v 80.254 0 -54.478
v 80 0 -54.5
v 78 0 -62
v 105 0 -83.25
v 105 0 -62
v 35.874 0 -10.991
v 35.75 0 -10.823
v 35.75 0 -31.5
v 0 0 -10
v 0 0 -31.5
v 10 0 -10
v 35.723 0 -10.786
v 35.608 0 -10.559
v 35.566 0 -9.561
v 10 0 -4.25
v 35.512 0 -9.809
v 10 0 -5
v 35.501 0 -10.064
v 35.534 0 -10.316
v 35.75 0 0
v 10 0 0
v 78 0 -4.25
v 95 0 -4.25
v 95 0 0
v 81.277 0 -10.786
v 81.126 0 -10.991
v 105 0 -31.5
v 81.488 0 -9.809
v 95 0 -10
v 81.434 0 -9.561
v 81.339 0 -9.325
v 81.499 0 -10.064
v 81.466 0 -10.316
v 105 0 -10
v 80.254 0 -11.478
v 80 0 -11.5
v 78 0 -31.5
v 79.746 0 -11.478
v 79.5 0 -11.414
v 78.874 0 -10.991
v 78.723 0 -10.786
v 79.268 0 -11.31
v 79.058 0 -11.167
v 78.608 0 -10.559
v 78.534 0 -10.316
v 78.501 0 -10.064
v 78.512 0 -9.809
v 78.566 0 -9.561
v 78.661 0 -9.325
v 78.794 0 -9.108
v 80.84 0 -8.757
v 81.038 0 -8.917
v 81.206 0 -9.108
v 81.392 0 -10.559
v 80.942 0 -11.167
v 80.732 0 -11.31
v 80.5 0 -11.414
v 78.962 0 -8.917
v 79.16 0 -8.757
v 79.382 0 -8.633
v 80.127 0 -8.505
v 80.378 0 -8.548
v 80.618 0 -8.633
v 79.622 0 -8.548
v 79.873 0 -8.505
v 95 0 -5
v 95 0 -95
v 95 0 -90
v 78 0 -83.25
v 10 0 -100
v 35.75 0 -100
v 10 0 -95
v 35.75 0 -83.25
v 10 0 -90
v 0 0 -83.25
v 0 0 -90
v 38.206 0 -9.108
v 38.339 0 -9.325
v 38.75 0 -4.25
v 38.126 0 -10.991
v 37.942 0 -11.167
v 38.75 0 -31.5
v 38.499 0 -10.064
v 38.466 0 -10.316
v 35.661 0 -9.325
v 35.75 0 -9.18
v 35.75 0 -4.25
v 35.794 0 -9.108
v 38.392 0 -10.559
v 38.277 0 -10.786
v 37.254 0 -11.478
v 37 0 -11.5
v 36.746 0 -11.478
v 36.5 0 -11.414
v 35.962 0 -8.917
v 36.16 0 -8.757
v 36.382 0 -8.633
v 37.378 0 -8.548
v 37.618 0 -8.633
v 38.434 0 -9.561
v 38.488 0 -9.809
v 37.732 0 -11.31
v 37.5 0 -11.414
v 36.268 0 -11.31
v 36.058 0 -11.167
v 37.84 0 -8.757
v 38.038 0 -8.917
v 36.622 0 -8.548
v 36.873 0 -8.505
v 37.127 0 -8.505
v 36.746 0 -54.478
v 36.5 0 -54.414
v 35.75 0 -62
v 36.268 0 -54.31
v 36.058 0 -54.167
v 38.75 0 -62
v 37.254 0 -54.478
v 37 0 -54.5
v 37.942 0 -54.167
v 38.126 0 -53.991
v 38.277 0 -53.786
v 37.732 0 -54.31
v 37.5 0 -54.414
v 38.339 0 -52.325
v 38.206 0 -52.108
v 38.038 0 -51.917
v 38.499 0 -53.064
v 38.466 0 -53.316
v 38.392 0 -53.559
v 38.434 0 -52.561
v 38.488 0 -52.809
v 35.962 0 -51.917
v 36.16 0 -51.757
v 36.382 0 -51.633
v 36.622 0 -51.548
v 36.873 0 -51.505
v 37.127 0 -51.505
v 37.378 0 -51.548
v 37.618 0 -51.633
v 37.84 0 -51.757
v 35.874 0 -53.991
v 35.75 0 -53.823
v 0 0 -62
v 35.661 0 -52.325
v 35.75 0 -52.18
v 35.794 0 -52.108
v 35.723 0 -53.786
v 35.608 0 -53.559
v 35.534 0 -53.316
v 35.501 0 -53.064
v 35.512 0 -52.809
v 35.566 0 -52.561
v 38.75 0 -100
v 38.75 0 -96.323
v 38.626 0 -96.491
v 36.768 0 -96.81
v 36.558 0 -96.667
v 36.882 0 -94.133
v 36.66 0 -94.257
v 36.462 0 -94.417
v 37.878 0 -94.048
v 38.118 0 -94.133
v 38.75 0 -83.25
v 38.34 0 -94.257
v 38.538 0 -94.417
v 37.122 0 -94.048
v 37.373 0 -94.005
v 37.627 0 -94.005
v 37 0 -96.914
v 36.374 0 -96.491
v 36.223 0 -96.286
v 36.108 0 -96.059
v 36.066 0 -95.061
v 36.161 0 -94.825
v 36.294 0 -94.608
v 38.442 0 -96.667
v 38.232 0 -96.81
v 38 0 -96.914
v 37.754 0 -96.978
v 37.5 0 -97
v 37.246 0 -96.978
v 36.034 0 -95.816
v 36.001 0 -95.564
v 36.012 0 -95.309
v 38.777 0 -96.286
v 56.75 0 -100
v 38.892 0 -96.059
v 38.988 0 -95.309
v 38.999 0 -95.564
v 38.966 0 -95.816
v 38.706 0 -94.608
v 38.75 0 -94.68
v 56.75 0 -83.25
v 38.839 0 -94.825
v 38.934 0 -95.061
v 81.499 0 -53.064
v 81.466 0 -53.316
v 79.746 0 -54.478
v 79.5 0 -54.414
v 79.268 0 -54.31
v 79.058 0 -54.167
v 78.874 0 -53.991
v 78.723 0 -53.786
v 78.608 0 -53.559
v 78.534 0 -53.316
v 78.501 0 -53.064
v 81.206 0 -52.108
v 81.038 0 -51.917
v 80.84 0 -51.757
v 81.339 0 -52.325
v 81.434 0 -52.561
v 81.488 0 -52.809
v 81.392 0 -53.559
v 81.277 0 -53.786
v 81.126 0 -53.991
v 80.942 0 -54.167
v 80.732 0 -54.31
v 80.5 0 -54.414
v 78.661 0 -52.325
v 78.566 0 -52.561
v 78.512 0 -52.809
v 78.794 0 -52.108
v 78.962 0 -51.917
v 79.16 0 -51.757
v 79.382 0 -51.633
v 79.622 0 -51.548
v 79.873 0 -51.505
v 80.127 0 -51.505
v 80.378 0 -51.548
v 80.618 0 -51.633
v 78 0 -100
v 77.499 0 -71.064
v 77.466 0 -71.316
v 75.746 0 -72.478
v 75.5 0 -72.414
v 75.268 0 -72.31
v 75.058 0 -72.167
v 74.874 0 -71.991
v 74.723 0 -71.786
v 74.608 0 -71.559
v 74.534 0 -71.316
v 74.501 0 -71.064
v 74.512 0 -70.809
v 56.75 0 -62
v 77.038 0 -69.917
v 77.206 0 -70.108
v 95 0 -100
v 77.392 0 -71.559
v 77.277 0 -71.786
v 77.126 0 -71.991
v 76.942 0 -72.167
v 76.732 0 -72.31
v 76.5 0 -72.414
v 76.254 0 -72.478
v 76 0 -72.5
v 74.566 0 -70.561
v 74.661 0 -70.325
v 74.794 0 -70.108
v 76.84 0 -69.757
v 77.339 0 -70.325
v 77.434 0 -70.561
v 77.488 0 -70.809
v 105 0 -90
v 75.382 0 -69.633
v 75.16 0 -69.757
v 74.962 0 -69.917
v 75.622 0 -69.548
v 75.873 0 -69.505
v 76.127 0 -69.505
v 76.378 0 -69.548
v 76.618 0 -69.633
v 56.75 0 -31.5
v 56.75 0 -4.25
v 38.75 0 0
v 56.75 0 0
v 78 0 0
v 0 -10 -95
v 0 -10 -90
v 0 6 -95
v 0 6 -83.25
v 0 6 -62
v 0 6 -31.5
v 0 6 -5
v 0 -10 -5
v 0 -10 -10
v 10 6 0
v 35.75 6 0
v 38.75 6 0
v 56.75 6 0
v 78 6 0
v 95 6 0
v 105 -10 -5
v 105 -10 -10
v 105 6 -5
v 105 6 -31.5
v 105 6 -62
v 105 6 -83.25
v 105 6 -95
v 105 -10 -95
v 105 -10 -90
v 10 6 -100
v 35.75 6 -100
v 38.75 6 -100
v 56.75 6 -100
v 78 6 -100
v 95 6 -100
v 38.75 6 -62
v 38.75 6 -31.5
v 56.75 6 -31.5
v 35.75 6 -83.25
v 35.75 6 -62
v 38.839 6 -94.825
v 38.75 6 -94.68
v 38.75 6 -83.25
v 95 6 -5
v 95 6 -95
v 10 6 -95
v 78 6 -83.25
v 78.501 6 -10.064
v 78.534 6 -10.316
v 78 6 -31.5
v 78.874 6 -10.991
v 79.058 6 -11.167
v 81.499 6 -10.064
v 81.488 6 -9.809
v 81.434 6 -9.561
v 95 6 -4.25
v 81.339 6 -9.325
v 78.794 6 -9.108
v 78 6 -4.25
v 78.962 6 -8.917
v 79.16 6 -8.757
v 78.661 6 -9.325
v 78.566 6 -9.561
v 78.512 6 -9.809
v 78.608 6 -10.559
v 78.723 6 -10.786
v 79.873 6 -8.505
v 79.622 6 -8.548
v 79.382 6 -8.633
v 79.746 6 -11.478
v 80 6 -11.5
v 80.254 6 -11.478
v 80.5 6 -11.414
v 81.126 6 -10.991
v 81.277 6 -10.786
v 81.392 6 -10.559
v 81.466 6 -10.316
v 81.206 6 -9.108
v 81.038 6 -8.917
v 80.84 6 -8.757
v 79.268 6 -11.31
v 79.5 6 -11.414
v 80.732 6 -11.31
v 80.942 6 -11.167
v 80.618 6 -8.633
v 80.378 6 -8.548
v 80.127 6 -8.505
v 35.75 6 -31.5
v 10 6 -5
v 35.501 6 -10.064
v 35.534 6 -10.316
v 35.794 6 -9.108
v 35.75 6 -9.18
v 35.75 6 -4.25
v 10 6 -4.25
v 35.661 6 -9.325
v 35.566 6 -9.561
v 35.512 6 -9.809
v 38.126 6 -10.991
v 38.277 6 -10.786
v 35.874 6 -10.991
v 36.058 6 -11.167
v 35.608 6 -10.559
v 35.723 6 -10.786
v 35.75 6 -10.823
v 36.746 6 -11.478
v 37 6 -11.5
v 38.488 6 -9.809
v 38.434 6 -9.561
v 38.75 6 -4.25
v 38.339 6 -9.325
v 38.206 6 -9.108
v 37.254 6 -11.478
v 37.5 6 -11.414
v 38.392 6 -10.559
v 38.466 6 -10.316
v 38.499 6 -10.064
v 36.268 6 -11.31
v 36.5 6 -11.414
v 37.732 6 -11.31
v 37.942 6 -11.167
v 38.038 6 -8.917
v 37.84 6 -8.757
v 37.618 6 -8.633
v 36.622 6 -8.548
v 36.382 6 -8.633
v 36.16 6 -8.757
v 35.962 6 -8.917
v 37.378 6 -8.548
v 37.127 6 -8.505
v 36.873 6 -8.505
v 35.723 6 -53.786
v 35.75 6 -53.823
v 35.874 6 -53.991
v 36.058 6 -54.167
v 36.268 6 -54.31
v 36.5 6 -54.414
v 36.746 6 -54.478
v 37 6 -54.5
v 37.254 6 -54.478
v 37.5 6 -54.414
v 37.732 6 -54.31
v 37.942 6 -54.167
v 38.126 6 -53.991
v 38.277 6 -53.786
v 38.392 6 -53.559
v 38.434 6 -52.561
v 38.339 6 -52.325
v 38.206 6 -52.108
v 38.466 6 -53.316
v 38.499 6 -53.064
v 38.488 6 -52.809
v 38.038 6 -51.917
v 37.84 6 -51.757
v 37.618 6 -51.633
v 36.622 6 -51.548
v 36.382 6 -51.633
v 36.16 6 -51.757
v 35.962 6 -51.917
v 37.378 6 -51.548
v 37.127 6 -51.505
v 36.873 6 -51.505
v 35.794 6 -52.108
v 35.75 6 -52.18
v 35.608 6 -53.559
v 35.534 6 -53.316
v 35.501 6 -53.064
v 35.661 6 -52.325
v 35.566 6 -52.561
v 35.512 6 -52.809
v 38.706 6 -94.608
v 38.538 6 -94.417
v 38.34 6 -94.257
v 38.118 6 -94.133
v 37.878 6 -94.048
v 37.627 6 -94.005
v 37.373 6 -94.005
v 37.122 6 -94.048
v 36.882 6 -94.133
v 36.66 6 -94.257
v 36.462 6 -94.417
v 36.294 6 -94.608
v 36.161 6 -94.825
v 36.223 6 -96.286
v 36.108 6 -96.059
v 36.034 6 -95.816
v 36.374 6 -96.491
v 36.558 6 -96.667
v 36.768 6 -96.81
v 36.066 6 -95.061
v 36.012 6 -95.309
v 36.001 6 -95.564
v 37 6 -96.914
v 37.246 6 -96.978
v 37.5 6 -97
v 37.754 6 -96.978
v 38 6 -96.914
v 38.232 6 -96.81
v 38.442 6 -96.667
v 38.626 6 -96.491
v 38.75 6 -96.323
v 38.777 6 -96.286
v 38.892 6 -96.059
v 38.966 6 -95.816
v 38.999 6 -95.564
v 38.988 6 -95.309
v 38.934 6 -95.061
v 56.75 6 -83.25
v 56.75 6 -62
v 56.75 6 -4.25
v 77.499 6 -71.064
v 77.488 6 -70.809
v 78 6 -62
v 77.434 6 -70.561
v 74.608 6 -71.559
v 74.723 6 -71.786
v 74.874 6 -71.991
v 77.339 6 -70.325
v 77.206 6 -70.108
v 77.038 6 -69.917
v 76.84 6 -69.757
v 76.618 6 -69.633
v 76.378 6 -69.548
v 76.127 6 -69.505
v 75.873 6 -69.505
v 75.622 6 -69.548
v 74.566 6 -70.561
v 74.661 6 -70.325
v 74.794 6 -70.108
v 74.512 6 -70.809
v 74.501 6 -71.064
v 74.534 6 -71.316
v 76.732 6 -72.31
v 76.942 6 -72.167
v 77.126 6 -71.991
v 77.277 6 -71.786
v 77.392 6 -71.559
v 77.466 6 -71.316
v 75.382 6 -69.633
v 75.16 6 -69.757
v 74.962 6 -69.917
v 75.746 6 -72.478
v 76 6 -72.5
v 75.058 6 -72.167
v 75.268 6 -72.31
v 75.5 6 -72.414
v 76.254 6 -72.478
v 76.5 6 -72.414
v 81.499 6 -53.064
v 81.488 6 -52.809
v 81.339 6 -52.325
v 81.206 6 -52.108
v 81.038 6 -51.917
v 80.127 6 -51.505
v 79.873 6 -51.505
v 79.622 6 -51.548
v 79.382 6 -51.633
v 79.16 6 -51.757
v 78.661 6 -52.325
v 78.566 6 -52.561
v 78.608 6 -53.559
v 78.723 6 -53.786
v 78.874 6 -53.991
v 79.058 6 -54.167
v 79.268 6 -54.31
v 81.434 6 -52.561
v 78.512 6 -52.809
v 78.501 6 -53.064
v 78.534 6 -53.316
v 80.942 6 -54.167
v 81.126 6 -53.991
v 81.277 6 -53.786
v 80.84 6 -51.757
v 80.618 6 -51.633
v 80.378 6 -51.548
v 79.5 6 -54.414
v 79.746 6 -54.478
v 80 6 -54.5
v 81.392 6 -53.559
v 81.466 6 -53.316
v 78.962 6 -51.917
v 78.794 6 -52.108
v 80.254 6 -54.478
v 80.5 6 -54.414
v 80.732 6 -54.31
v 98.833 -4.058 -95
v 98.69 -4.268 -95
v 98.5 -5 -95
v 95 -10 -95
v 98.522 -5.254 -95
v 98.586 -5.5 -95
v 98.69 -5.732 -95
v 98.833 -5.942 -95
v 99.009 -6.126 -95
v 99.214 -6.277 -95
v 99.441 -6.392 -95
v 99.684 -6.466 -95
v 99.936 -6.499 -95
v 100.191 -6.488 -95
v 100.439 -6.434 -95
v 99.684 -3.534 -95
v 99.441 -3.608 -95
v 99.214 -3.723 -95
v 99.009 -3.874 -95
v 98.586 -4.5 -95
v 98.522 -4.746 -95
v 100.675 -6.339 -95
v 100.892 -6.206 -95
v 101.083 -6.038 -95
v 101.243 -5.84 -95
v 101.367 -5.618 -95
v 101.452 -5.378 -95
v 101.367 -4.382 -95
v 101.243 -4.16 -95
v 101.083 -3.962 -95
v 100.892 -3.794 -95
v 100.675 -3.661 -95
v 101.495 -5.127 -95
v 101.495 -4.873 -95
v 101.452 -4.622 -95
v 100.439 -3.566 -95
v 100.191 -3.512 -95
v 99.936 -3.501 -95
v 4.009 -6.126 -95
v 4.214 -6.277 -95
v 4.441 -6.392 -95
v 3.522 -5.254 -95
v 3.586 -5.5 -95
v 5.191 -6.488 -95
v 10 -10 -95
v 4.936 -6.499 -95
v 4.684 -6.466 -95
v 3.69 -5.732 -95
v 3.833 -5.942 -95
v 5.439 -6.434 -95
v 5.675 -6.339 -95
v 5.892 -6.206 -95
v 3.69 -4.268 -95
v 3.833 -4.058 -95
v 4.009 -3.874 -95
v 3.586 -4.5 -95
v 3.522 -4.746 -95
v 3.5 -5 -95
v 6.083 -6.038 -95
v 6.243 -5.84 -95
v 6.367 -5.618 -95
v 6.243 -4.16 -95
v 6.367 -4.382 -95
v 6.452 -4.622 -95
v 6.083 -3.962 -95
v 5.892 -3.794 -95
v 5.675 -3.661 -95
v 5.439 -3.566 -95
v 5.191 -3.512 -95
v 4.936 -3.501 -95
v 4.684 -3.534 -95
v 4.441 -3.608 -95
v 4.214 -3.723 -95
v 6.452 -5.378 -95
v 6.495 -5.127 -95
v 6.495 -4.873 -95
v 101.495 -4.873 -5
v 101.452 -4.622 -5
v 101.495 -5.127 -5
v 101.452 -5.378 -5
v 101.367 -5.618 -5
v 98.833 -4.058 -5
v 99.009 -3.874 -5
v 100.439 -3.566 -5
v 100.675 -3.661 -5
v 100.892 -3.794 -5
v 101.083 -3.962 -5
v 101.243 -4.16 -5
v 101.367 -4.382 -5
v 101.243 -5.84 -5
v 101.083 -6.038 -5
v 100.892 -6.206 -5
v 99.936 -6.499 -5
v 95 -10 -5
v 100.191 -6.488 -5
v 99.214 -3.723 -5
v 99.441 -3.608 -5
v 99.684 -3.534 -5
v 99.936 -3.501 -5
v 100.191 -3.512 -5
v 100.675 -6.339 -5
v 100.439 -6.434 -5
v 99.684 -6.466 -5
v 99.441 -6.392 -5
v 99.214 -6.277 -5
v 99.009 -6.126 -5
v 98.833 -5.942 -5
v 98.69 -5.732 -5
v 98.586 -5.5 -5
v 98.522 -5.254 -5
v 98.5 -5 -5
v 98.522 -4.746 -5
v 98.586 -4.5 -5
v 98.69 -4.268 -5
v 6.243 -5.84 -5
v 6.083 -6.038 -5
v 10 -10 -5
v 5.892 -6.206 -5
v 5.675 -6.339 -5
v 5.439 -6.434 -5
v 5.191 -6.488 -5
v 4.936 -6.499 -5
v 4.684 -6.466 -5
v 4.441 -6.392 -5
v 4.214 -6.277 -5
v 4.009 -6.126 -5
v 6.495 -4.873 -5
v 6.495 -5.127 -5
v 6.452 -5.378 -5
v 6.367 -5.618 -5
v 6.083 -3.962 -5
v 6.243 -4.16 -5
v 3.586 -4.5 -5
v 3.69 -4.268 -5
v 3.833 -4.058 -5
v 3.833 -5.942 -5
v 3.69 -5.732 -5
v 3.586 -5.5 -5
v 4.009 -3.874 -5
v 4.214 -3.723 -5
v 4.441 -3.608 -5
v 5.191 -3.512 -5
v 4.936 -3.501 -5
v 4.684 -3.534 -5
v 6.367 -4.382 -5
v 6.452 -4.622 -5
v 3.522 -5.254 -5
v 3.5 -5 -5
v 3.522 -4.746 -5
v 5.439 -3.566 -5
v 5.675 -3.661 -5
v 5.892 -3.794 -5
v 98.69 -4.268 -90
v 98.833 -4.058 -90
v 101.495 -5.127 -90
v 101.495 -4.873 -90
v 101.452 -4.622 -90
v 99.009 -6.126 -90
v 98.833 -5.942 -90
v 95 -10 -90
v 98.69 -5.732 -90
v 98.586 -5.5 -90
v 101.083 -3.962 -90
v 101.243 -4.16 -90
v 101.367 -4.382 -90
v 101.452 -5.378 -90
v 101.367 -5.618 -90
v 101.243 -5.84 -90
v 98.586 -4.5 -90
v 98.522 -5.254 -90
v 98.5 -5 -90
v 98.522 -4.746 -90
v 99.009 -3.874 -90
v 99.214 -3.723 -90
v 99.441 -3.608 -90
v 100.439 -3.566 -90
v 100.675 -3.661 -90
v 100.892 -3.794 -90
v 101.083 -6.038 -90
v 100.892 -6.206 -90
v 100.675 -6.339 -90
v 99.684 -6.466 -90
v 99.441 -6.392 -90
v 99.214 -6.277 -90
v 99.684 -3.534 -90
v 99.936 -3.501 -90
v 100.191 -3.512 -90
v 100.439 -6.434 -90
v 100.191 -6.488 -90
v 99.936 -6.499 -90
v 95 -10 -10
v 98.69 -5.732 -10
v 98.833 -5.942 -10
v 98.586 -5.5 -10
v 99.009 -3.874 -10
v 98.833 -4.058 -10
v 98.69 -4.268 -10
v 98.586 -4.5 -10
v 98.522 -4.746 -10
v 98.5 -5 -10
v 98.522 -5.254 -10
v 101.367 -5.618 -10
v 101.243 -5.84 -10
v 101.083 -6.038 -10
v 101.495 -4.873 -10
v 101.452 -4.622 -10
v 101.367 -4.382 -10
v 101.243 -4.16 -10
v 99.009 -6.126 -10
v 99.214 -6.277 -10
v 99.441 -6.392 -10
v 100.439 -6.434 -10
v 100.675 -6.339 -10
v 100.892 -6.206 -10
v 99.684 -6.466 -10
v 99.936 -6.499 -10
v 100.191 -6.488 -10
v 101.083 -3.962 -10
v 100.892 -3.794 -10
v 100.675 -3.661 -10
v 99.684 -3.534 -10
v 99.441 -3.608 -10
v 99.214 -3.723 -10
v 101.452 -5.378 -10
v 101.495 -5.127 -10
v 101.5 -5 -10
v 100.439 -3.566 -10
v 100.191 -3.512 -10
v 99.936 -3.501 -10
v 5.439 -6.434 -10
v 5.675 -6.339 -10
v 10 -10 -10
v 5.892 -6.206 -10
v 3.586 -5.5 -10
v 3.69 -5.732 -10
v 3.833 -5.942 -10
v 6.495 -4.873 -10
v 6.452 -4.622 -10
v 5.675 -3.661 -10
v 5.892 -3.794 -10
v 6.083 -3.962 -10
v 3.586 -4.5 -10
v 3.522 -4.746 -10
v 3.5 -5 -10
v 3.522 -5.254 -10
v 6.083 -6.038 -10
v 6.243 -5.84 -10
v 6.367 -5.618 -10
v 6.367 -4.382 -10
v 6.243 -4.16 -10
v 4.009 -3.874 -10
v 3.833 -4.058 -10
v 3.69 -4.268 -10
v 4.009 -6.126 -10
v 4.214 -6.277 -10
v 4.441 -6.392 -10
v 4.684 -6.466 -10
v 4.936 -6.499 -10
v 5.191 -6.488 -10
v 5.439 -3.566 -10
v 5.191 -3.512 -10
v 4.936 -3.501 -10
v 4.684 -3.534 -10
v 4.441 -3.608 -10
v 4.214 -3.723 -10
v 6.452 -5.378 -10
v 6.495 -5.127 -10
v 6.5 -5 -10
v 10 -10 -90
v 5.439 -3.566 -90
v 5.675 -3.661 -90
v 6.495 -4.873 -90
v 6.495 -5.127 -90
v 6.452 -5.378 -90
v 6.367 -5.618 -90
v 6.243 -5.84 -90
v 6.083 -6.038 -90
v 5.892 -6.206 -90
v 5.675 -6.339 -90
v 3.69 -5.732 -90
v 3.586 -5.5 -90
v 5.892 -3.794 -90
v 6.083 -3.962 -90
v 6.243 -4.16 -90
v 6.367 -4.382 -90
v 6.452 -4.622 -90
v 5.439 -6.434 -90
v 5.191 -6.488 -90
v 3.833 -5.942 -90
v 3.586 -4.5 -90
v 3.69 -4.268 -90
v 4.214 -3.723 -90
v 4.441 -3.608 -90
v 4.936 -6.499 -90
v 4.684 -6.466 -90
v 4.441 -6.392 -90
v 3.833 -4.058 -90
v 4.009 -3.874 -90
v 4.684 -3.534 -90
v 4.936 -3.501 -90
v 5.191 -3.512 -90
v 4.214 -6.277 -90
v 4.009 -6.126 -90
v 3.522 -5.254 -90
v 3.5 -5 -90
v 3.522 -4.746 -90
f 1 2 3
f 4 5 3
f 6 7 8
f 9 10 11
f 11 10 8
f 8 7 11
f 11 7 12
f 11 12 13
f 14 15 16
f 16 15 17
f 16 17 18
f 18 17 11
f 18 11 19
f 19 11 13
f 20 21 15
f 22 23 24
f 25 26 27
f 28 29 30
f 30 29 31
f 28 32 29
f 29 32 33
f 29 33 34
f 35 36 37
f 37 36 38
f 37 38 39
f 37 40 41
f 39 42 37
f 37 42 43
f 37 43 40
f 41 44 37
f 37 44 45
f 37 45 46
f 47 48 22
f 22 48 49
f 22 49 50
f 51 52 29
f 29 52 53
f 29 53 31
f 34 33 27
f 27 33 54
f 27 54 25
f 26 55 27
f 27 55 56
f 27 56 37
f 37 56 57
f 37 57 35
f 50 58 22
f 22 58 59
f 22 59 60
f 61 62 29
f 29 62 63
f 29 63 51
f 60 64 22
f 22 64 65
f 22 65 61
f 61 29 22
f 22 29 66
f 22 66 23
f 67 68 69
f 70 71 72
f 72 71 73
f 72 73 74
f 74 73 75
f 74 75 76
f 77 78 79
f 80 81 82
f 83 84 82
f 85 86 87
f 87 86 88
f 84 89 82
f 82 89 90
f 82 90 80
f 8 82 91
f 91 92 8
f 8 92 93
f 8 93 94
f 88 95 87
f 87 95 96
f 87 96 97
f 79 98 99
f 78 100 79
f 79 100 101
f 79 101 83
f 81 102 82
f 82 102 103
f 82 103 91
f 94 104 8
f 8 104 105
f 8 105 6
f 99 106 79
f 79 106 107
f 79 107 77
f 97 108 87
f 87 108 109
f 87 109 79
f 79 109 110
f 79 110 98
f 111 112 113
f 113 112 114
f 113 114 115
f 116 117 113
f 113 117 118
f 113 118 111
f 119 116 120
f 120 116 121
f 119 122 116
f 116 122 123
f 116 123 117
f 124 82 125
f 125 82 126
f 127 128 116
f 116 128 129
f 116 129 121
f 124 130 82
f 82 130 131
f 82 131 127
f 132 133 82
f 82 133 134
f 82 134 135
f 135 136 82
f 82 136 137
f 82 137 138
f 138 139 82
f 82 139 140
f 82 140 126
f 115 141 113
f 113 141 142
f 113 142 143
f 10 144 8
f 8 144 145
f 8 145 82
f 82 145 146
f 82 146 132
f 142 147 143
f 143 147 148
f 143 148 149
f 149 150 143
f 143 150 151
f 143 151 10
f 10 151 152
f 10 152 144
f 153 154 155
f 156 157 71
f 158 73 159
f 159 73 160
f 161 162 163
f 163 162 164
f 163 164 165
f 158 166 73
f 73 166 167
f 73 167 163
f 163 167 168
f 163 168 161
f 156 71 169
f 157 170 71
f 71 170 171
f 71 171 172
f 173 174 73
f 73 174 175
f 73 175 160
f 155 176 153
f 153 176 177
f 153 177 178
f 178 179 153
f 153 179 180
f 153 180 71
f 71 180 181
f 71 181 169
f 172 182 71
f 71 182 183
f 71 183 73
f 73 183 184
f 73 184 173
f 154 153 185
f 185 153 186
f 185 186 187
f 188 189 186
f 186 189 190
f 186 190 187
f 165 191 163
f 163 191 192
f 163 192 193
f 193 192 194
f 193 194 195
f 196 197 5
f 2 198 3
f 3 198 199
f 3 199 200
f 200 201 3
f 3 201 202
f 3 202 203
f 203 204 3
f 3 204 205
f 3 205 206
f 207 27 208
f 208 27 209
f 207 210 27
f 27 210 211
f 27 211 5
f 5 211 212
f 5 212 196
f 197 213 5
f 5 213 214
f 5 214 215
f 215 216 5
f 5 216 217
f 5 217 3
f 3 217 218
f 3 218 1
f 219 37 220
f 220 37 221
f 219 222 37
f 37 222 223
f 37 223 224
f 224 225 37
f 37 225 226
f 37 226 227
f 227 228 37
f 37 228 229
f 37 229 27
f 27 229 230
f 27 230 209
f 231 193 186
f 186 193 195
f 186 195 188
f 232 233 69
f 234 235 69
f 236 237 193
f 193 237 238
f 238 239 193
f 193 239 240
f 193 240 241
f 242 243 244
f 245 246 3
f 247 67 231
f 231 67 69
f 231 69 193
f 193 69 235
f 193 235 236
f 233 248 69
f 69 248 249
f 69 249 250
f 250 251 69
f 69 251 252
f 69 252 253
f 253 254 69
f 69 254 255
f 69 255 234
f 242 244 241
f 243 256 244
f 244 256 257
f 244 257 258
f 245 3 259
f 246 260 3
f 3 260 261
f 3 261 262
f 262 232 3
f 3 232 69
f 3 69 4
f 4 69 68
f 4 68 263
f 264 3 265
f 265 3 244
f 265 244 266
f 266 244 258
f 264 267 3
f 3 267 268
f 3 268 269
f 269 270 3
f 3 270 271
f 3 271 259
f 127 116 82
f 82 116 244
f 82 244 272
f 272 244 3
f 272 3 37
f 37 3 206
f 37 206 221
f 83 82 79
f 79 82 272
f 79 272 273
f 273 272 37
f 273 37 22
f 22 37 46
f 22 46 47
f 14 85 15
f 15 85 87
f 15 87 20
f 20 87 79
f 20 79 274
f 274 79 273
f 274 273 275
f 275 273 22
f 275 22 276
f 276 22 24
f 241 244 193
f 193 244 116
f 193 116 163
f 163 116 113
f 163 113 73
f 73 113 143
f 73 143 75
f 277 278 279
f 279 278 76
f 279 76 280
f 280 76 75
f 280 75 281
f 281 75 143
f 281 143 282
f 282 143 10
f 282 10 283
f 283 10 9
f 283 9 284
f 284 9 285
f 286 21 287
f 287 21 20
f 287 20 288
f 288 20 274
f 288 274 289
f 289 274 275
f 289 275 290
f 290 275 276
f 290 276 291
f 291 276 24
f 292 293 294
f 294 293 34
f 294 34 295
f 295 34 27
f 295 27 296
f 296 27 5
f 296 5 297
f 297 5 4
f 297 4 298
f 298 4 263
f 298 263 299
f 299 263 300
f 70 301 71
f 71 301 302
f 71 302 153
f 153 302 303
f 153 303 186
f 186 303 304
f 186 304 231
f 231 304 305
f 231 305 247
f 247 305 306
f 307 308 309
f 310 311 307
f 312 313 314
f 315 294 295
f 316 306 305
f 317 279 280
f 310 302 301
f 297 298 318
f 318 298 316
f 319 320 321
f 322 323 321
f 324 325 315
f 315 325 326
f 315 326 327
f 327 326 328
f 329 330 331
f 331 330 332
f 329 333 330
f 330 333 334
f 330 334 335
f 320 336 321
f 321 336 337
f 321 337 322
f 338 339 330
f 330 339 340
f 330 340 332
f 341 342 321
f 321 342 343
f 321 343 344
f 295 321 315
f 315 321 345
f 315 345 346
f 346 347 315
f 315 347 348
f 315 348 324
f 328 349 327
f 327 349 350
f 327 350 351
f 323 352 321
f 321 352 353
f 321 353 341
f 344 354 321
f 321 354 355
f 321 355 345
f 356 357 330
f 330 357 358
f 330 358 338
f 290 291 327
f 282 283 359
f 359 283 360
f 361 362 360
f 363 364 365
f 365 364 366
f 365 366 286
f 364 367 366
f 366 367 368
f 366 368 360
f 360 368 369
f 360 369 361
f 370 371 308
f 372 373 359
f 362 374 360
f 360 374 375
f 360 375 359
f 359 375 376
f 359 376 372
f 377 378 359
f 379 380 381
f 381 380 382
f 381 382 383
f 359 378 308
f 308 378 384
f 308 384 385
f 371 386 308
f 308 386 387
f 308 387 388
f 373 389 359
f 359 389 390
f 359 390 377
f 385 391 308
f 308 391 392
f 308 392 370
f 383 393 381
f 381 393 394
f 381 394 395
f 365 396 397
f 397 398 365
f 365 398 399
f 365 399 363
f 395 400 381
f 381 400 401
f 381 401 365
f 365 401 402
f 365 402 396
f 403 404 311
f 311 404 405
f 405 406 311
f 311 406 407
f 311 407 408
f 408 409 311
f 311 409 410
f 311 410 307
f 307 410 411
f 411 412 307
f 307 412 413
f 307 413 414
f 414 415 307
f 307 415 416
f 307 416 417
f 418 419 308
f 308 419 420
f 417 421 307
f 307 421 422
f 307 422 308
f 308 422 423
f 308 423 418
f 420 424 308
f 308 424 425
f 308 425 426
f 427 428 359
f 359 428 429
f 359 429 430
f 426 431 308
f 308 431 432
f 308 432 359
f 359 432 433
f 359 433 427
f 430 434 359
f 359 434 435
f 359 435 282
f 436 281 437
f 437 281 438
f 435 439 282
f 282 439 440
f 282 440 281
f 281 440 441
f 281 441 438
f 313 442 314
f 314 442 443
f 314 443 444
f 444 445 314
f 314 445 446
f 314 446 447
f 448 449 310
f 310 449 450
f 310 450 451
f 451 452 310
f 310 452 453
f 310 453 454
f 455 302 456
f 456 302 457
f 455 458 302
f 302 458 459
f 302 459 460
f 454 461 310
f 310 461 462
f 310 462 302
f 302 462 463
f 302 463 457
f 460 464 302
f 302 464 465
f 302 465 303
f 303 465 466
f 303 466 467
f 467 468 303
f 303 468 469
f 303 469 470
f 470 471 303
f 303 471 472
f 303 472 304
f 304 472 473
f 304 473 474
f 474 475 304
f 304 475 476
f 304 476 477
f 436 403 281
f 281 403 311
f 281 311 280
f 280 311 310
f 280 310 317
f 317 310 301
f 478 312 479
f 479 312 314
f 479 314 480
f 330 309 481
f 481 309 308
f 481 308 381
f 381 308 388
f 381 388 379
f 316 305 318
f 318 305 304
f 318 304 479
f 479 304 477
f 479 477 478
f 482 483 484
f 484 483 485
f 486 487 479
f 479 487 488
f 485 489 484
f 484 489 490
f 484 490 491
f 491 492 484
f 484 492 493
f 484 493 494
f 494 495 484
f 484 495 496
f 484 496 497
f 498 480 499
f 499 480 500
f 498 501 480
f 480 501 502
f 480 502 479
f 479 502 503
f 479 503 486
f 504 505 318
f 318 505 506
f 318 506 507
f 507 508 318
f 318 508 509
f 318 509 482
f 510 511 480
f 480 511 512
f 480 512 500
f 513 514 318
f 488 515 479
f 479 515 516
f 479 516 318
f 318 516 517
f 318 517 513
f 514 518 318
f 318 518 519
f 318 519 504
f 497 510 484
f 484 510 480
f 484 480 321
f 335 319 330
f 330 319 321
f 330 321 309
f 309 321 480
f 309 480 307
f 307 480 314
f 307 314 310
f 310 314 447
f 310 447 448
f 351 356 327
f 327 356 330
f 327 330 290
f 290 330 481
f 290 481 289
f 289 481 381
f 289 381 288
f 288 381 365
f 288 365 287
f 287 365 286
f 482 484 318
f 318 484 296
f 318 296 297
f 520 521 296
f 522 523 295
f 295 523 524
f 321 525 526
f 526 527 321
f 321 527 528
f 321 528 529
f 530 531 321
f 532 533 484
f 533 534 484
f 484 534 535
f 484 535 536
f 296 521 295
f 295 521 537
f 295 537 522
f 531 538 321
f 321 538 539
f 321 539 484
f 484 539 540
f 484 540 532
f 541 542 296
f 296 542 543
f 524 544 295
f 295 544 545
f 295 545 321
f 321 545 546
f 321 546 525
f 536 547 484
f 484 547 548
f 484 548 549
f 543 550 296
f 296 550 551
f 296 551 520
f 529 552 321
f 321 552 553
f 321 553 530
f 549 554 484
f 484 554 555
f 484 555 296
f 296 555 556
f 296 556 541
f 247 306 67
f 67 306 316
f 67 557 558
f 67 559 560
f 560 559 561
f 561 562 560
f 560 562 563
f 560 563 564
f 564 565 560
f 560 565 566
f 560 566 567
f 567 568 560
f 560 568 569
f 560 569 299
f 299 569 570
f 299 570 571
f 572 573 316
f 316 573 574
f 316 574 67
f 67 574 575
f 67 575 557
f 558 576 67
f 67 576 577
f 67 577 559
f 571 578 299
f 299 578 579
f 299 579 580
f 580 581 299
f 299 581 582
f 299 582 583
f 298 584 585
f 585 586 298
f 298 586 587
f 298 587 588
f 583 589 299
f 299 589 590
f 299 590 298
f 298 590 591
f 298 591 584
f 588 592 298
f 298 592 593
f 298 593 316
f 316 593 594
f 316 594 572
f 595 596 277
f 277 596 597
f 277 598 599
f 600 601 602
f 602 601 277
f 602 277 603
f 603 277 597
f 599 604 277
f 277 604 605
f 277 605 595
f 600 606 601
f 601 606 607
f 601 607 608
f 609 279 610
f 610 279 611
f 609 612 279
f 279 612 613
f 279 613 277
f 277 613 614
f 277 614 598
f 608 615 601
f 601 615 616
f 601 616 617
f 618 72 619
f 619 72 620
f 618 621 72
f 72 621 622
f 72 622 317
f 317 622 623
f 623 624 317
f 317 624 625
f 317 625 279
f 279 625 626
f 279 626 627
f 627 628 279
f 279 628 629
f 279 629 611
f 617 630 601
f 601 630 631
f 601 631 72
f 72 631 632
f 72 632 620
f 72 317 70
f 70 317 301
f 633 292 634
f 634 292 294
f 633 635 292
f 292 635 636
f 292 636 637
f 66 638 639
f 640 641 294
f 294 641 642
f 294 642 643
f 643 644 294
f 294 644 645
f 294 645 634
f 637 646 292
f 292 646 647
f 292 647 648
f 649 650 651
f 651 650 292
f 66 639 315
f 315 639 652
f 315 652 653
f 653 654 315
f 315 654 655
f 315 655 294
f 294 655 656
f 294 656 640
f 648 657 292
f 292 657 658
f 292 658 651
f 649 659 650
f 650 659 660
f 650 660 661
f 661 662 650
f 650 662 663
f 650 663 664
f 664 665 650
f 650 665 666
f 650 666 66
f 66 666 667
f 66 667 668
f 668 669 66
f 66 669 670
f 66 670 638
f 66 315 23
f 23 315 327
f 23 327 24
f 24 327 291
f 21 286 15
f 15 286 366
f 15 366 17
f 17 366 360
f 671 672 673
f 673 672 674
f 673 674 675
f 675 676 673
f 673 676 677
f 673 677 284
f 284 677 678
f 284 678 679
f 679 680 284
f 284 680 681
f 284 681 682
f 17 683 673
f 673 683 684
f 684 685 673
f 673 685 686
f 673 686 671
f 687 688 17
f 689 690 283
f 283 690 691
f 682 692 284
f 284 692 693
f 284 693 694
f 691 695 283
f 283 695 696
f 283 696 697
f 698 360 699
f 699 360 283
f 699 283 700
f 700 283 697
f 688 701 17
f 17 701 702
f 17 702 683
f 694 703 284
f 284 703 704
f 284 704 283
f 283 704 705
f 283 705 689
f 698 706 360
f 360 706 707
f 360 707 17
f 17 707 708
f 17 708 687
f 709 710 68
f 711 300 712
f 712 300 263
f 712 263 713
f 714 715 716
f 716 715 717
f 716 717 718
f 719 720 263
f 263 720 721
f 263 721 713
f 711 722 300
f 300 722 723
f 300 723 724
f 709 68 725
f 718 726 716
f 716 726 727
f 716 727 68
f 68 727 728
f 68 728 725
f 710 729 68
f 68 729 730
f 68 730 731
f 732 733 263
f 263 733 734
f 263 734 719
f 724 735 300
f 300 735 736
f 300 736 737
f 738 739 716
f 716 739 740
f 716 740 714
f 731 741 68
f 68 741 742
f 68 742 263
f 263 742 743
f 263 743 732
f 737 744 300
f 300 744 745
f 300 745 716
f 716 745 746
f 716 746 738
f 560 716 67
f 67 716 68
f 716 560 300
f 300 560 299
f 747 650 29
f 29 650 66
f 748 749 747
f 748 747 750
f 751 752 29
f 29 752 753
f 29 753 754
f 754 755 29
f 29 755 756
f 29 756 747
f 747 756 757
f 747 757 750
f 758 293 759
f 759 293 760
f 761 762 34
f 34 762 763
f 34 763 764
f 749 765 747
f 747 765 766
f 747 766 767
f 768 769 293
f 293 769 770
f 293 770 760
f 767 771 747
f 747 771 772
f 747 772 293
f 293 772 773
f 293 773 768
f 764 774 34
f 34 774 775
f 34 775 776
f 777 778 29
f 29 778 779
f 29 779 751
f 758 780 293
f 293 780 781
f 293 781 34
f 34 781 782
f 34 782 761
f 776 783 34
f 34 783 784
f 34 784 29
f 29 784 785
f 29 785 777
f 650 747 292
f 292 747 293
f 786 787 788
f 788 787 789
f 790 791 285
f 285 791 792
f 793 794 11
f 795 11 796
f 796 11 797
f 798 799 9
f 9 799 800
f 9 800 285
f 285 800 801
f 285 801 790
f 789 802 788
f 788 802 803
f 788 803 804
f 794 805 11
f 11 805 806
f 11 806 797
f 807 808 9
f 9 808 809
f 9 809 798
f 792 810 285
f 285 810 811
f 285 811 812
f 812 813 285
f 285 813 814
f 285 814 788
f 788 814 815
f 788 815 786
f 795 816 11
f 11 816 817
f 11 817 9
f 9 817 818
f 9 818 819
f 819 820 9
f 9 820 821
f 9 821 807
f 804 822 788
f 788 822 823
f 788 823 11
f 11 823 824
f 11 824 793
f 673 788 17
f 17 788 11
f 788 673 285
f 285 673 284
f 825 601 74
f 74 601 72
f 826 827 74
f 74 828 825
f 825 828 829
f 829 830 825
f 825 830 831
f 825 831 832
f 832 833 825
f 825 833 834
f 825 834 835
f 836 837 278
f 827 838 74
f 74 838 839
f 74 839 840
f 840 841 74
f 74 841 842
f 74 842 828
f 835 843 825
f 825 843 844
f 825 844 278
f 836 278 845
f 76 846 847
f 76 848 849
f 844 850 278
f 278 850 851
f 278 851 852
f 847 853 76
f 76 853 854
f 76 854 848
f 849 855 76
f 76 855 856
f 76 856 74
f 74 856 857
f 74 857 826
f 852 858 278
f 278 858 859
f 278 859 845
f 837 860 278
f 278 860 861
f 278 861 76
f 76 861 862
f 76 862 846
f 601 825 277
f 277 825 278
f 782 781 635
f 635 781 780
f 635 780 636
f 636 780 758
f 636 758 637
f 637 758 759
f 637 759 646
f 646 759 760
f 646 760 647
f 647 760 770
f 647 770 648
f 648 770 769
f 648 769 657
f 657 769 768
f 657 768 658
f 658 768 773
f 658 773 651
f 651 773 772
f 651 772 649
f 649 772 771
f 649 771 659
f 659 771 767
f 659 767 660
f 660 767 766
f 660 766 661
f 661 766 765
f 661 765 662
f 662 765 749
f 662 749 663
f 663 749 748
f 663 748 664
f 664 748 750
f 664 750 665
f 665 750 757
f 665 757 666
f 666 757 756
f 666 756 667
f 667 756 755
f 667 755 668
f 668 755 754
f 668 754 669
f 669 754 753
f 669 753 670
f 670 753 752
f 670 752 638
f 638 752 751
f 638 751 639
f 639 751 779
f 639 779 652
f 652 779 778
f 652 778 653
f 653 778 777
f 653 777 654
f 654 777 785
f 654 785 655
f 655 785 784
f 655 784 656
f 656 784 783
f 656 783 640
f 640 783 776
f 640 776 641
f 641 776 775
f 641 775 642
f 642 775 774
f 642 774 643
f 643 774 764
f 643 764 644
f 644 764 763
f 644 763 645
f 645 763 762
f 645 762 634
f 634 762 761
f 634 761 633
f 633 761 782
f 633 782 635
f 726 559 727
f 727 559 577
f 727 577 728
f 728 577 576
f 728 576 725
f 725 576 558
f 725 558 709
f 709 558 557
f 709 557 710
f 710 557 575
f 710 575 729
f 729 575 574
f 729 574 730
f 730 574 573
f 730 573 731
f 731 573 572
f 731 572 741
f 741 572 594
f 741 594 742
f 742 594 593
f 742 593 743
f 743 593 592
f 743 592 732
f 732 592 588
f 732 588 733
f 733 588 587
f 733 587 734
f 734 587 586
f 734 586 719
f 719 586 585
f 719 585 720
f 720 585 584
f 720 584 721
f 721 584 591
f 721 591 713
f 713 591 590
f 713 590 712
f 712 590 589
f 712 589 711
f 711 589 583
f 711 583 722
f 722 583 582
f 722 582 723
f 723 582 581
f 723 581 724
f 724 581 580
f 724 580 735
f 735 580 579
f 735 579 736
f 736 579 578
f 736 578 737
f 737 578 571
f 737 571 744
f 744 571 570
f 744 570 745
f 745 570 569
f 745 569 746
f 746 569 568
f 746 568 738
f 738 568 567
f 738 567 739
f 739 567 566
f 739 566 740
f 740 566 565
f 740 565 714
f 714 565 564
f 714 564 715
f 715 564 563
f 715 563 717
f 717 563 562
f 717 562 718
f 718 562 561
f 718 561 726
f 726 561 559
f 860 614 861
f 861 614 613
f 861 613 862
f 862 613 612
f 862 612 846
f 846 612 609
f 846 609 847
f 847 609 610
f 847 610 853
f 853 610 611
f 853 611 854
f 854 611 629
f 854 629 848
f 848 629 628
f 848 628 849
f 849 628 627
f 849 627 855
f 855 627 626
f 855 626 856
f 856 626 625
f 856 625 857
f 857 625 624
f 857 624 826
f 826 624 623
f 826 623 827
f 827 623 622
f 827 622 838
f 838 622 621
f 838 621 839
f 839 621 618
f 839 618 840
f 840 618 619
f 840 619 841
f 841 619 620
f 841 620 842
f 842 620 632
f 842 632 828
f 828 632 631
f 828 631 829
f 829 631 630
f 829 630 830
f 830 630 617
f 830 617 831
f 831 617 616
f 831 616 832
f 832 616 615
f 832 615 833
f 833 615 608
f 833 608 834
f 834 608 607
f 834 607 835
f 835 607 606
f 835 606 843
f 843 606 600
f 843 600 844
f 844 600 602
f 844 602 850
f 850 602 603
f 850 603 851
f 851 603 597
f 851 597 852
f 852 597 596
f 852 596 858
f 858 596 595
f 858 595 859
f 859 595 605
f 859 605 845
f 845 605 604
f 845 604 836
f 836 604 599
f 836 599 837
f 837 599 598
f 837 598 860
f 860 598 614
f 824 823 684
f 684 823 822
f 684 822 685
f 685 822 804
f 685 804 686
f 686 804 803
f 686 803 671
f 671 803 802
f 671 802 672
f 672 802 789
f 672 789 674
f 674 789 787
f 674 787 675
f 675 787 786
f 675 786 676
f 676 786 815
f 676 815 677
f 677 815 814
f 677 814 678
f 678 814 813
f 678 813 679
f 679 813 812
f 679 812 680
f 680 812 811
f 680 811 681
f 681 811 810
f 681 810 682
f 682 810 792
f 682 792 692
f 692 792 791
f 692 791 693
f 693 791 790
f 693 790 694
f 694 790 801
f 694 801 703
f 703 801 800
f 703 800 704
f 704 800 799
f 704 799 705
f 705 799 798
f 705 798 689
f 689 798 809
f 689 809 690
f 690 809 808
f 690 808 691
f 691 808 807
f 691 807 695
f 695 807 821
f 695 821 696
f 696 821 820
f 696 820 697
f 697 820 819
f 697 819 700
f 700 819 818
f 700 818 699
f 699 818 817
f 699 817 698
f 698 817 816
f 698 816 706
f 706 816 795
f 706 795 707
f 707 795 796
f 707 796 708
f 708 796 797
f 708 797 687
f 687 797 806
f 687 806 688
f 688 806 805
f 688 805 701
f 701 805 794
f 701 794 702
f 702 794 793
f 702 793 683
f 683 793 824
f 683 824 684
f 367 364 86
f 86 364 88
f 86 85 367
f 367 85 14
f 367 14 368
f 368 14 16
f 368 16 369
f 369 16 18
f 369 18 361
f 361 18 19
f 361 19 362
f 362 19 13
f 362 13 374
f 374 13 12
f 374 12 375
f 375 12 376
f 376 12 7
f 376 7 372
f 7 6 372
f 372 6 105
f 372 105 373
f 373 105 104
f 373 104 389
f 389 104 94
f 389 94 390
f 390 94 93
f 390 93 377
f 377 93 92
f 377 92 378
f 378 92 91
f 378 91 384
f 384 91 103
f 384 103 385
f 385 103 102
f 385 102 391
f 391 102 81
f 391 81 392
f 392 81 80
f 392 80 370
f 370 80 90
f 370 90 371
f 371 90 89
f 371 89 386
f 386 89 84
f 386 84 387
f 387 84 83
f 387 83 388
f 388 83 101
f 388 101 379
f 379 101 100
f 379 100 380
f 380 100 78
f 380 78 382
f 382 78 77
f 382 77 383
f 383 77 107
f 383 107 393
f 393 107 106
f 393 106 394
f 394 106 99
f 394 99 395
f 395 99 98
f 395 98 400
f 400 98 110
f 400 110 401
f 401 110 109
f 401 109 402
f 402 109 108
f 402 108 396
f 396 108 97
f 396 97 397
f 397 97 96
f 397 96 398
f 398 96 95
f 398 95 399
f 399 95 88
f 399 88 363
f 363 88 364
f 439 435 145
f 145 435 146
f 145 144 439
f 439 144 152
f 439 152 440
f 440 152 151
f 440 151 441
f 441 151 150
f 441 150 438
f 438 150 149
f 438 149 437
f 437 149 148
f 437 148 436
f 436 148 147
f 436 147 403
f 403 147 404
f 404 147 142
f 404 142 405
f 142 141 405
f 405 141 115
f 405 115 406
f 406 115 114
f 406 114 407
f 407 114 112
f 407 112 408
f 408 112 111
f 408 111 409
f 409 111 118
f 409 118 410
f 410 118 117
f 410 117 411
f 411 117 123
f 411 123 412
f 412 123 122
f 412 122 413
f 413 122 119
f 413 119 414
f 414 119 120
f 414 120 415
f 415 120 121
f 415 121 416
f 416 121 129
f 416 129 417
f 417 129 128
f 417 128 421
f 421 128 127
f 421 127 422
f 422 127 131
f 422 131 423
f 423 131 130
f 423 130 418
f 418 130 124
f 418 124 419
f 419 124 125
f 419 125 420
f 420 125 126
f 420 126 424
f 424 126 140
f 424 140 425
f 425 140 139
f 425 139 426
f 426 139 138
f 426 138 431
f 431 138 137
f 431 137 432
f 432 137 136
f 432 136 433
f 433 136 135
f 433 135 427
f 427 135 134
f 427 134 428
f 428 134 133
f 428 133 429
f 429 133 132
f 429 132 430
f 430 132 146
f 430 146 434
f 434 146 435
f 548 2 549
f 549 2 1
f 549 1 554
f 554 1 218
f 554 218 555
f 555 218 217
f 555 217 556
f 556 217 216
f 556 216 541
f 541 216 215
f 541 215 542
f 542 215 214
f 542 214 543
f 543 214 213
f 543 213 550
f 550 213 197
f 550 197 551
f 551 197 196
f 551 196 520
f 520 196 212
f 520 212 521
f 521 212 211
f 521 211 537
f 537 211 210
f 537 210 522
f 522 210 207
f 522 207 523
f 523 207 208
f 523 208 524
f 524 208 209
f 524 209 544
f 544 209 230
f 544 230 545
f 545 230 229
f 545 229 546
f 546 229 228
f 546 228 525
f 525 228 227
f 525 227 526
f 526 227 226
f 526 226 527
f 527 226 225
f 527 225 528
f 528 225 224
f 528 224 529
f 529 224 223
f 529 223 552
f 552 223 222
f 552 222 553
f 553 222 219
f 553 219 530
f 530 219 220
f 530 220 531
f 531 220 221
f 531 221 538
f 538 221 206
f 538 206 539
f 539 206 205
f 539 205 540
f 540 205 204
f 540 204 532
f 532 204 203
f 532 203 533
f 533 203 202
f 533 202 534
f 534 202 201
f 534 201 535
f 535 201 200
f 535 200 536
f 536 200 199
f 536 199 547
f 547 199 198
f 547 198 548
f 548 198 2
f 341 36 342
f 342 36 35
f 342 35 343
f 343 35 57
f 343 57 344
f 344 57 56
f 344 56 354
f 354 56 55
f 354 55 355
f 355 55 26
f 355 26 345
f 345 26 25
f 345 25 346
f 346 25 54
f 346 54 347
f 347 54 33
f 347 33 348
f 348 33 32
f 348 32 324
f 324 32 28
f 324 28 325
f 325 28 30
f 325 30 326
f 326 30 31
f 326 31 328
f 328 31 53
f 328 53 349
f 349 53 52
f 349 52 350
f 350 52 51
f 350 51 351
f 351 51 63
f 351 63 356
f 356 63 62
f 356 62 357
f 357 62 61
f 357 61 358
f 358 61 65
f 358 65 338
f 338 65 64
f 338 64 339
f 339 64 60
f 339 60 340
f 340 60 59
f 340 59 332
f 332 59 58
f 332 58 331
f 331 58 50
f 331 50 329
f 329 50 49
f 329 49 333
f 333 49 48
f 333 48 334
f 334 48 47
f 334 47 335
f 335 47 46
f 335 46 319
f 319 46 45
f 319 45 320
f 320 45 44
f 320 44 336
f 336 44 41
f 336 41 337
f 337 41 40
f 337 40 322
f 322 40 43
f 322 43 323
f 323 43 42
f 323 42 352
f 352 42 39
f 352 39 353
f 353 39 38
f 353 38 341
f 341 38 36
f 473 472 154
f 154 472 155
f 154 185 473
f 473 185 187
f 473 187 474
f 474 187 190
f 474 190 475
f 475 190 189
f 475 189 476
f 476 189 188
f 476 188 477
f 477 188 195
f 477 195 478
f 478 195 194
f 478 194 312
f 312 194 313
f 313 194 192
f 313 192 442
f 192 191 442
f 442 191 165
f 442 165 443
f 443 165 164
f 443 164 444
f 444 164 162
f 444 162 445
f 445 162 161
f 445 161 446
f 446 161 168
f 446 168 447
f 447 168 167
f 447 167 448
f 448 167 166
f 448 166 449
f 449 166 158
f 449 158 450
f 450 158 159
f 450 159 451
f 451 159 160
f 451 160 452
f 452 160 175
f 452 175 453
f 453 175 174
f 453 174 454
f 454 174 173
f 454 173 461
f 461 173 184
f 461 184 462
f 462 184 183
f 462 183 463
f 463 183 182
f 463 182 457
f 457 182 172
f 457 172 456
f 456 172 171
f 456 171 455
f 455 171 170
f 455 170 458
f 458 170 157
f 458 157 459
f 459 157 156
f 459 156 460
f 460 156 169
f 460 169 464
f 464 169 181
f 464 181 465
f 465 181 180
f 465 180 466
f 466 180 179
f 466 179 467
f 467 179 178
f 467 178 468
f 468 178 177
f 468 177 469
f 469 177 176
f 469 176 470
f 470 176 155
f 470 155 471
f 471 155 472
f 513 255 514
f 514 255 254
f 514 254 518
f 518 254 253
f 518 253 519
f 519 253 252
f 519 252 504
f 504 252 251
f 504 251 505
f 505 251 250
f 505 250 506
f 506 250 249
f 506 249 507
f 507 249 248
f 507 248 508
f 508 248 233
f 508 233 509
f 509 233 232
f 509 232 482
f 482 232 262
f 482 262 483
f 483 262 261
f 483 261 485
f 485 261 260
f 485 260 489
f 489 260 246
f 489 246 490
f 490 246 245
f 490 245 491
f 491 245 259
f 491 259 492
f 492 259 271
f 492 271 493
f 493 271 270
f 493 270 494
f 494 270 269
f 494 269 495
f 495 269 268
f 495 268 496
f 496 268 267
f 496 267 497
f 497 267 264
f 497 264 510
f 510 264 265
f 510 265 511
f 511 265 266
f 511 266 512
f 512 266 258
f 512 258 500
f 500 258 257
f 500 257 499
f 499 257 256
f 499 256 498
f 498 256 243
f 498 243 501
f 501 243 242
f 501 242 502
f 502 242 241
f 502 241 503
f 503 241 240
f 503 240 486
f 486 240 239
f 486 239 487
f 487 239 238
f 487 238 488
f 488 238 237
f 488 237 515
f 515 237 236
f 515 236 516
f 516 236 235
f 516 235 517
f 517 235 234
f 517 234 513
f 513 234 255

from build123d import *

# Parameters (mm, degrees)
SKETCH1_W           = 105
SKETCH1_H           = 100
BOSS_EXTRUDE1_DEPTH = 6
SKETCH2_W           = 10
SKETCH2_H           = 5
CUT_EXTRUDE1_DEPTH  = 10
SKETCH3_W           = 10
SKETCH3_H           = 5
BOSS_EXTRUDE2_DEPTH = 10
SKETCH4_R           = 1.5
CUT_EXTRUDE2_DEPTH  = 142.950695666
SKETCH5_R           = 1.5
CUT_EXTRUDE4_DEPTH  = 6
SKETCH6_R           = 1.5
CUT_EXTRUDE5_DEPTH  = 6


with BuildPart() as part:
    # Sketch1 → Boss-Extrude1 (new body)
    with BuildSketch(Plane(origin=(0, 0, 0), x_dir=(1, 0, 0), z_dir=(0, 1, 0))):
        with Locations((52.5, 50)):
            Rectangle(SKETCH1_W, SKETCH1_H)
    extrude(amount=BOSS_EXTRUDE1_DEPTH)

    # Sketch2 → Cut-Extrude1 (cut)
    with BuildSketch(Plane.XZ):
        with Locations((100, -97.5)):
            Rectangle(SKETCH2_W, SKETCH2_H)
        with Locations((5, -97.5)):
            Rectangle(SKETCH2_W, SKETCH2_H)
        with Locations((100, -2.5)):
            Rectangle(SKETCH2_W, SKETCH2_H)
        with Locations((5, -2.5)):
            Rectangle(SKETCH2_W, SKETCH2_H)
    extrude(amount=-CUT_EXTRUDE1_DEPTH, mode=Mode.SUBTRACT)

    # Sketch3 → Boss-Extrude2 (add)
    with BuildSketch(Plane(origin=(0, 0, 0), x_dir=(-1, 0, 0), z_dir=(0, -1, 0))):
        with Locations((-100, 92.5)):
            Rectangle(SKETCH3_W, SKETCH3_H)
        with Locations((-100, 7.5)):
            Rectangle(SKETCH3_W, SKETCH3_H)
        with Locations((-5, 7.5)):
            Rectangle(SKETCH3_W, SKETCH3_H)
        with Locations((-5, 92.5)):
            Rectangle(SKETCH3_W, SKETCH3_H)
    extrude(amount=BOSS_EXTRUDE2_DEPTH)

    # Sketch4 → Cut-Extrude2 (cut, through all)
    with BuildSketch(Plane(origin=(0, 0, -95), x_dir=(-1, 0, 0), z_dir=(0, 0, -1))):
        with Locations((-100, -5)):
            Circle(SKETCH4_R)
        with Locations((-5, -5)):
            Circle(SKETCH4_R)
    extrude(amount=-CUT_EXTRUDE2_DEPTH, mode=Mode.SUBTRACT)

    # Sketch5 → Cut-Extrude4 (cut)
    with BuildSketch(Plane(origin=(0, 0, 0), x_dir=(-1, 0, 0), z_dir=(0, -1, 0))):
        with Locations(Location((-37, 10, 0), (0, 0, 90))):
            Circle(SKETCH5_R)
        with Locations(Location((-37, 53, 0), (0, 0, 90))):
            Circle(SKETCH5_R)
        with Locations(Location((-80, 53, 0), (0, 0, 90))):
            Circle(SKETCH5_R)
        with Locations(Location((-80, 10, 0), (0, 0, 90))):
            Circle(SKETCH5_R)
    extrude(amount=-CUT_EXTRUDE4_DEPTH, mode=Mode.SUBTRACT)

    # Sketch6 → Cut-Extrude5 (cut)
    with BuildSketch(Plane(origin=(0, 0, 0), x_dir=(-1, 0, 0), z_dir=(0, -1, 0))):
        with Locations(Location((-37.5, 95.5, 0), (0, 0, 90))):
            Circle(SKETCH6_R)
        with Locations(Location((-76, 71, 0), (0, 0, 90))):
            Circle(SKETCH6_R)
    extrude(amount=-CUT_EXTRUDE5_DEPTH, mode=Mode.SUBTRACT)


solid = part.part
